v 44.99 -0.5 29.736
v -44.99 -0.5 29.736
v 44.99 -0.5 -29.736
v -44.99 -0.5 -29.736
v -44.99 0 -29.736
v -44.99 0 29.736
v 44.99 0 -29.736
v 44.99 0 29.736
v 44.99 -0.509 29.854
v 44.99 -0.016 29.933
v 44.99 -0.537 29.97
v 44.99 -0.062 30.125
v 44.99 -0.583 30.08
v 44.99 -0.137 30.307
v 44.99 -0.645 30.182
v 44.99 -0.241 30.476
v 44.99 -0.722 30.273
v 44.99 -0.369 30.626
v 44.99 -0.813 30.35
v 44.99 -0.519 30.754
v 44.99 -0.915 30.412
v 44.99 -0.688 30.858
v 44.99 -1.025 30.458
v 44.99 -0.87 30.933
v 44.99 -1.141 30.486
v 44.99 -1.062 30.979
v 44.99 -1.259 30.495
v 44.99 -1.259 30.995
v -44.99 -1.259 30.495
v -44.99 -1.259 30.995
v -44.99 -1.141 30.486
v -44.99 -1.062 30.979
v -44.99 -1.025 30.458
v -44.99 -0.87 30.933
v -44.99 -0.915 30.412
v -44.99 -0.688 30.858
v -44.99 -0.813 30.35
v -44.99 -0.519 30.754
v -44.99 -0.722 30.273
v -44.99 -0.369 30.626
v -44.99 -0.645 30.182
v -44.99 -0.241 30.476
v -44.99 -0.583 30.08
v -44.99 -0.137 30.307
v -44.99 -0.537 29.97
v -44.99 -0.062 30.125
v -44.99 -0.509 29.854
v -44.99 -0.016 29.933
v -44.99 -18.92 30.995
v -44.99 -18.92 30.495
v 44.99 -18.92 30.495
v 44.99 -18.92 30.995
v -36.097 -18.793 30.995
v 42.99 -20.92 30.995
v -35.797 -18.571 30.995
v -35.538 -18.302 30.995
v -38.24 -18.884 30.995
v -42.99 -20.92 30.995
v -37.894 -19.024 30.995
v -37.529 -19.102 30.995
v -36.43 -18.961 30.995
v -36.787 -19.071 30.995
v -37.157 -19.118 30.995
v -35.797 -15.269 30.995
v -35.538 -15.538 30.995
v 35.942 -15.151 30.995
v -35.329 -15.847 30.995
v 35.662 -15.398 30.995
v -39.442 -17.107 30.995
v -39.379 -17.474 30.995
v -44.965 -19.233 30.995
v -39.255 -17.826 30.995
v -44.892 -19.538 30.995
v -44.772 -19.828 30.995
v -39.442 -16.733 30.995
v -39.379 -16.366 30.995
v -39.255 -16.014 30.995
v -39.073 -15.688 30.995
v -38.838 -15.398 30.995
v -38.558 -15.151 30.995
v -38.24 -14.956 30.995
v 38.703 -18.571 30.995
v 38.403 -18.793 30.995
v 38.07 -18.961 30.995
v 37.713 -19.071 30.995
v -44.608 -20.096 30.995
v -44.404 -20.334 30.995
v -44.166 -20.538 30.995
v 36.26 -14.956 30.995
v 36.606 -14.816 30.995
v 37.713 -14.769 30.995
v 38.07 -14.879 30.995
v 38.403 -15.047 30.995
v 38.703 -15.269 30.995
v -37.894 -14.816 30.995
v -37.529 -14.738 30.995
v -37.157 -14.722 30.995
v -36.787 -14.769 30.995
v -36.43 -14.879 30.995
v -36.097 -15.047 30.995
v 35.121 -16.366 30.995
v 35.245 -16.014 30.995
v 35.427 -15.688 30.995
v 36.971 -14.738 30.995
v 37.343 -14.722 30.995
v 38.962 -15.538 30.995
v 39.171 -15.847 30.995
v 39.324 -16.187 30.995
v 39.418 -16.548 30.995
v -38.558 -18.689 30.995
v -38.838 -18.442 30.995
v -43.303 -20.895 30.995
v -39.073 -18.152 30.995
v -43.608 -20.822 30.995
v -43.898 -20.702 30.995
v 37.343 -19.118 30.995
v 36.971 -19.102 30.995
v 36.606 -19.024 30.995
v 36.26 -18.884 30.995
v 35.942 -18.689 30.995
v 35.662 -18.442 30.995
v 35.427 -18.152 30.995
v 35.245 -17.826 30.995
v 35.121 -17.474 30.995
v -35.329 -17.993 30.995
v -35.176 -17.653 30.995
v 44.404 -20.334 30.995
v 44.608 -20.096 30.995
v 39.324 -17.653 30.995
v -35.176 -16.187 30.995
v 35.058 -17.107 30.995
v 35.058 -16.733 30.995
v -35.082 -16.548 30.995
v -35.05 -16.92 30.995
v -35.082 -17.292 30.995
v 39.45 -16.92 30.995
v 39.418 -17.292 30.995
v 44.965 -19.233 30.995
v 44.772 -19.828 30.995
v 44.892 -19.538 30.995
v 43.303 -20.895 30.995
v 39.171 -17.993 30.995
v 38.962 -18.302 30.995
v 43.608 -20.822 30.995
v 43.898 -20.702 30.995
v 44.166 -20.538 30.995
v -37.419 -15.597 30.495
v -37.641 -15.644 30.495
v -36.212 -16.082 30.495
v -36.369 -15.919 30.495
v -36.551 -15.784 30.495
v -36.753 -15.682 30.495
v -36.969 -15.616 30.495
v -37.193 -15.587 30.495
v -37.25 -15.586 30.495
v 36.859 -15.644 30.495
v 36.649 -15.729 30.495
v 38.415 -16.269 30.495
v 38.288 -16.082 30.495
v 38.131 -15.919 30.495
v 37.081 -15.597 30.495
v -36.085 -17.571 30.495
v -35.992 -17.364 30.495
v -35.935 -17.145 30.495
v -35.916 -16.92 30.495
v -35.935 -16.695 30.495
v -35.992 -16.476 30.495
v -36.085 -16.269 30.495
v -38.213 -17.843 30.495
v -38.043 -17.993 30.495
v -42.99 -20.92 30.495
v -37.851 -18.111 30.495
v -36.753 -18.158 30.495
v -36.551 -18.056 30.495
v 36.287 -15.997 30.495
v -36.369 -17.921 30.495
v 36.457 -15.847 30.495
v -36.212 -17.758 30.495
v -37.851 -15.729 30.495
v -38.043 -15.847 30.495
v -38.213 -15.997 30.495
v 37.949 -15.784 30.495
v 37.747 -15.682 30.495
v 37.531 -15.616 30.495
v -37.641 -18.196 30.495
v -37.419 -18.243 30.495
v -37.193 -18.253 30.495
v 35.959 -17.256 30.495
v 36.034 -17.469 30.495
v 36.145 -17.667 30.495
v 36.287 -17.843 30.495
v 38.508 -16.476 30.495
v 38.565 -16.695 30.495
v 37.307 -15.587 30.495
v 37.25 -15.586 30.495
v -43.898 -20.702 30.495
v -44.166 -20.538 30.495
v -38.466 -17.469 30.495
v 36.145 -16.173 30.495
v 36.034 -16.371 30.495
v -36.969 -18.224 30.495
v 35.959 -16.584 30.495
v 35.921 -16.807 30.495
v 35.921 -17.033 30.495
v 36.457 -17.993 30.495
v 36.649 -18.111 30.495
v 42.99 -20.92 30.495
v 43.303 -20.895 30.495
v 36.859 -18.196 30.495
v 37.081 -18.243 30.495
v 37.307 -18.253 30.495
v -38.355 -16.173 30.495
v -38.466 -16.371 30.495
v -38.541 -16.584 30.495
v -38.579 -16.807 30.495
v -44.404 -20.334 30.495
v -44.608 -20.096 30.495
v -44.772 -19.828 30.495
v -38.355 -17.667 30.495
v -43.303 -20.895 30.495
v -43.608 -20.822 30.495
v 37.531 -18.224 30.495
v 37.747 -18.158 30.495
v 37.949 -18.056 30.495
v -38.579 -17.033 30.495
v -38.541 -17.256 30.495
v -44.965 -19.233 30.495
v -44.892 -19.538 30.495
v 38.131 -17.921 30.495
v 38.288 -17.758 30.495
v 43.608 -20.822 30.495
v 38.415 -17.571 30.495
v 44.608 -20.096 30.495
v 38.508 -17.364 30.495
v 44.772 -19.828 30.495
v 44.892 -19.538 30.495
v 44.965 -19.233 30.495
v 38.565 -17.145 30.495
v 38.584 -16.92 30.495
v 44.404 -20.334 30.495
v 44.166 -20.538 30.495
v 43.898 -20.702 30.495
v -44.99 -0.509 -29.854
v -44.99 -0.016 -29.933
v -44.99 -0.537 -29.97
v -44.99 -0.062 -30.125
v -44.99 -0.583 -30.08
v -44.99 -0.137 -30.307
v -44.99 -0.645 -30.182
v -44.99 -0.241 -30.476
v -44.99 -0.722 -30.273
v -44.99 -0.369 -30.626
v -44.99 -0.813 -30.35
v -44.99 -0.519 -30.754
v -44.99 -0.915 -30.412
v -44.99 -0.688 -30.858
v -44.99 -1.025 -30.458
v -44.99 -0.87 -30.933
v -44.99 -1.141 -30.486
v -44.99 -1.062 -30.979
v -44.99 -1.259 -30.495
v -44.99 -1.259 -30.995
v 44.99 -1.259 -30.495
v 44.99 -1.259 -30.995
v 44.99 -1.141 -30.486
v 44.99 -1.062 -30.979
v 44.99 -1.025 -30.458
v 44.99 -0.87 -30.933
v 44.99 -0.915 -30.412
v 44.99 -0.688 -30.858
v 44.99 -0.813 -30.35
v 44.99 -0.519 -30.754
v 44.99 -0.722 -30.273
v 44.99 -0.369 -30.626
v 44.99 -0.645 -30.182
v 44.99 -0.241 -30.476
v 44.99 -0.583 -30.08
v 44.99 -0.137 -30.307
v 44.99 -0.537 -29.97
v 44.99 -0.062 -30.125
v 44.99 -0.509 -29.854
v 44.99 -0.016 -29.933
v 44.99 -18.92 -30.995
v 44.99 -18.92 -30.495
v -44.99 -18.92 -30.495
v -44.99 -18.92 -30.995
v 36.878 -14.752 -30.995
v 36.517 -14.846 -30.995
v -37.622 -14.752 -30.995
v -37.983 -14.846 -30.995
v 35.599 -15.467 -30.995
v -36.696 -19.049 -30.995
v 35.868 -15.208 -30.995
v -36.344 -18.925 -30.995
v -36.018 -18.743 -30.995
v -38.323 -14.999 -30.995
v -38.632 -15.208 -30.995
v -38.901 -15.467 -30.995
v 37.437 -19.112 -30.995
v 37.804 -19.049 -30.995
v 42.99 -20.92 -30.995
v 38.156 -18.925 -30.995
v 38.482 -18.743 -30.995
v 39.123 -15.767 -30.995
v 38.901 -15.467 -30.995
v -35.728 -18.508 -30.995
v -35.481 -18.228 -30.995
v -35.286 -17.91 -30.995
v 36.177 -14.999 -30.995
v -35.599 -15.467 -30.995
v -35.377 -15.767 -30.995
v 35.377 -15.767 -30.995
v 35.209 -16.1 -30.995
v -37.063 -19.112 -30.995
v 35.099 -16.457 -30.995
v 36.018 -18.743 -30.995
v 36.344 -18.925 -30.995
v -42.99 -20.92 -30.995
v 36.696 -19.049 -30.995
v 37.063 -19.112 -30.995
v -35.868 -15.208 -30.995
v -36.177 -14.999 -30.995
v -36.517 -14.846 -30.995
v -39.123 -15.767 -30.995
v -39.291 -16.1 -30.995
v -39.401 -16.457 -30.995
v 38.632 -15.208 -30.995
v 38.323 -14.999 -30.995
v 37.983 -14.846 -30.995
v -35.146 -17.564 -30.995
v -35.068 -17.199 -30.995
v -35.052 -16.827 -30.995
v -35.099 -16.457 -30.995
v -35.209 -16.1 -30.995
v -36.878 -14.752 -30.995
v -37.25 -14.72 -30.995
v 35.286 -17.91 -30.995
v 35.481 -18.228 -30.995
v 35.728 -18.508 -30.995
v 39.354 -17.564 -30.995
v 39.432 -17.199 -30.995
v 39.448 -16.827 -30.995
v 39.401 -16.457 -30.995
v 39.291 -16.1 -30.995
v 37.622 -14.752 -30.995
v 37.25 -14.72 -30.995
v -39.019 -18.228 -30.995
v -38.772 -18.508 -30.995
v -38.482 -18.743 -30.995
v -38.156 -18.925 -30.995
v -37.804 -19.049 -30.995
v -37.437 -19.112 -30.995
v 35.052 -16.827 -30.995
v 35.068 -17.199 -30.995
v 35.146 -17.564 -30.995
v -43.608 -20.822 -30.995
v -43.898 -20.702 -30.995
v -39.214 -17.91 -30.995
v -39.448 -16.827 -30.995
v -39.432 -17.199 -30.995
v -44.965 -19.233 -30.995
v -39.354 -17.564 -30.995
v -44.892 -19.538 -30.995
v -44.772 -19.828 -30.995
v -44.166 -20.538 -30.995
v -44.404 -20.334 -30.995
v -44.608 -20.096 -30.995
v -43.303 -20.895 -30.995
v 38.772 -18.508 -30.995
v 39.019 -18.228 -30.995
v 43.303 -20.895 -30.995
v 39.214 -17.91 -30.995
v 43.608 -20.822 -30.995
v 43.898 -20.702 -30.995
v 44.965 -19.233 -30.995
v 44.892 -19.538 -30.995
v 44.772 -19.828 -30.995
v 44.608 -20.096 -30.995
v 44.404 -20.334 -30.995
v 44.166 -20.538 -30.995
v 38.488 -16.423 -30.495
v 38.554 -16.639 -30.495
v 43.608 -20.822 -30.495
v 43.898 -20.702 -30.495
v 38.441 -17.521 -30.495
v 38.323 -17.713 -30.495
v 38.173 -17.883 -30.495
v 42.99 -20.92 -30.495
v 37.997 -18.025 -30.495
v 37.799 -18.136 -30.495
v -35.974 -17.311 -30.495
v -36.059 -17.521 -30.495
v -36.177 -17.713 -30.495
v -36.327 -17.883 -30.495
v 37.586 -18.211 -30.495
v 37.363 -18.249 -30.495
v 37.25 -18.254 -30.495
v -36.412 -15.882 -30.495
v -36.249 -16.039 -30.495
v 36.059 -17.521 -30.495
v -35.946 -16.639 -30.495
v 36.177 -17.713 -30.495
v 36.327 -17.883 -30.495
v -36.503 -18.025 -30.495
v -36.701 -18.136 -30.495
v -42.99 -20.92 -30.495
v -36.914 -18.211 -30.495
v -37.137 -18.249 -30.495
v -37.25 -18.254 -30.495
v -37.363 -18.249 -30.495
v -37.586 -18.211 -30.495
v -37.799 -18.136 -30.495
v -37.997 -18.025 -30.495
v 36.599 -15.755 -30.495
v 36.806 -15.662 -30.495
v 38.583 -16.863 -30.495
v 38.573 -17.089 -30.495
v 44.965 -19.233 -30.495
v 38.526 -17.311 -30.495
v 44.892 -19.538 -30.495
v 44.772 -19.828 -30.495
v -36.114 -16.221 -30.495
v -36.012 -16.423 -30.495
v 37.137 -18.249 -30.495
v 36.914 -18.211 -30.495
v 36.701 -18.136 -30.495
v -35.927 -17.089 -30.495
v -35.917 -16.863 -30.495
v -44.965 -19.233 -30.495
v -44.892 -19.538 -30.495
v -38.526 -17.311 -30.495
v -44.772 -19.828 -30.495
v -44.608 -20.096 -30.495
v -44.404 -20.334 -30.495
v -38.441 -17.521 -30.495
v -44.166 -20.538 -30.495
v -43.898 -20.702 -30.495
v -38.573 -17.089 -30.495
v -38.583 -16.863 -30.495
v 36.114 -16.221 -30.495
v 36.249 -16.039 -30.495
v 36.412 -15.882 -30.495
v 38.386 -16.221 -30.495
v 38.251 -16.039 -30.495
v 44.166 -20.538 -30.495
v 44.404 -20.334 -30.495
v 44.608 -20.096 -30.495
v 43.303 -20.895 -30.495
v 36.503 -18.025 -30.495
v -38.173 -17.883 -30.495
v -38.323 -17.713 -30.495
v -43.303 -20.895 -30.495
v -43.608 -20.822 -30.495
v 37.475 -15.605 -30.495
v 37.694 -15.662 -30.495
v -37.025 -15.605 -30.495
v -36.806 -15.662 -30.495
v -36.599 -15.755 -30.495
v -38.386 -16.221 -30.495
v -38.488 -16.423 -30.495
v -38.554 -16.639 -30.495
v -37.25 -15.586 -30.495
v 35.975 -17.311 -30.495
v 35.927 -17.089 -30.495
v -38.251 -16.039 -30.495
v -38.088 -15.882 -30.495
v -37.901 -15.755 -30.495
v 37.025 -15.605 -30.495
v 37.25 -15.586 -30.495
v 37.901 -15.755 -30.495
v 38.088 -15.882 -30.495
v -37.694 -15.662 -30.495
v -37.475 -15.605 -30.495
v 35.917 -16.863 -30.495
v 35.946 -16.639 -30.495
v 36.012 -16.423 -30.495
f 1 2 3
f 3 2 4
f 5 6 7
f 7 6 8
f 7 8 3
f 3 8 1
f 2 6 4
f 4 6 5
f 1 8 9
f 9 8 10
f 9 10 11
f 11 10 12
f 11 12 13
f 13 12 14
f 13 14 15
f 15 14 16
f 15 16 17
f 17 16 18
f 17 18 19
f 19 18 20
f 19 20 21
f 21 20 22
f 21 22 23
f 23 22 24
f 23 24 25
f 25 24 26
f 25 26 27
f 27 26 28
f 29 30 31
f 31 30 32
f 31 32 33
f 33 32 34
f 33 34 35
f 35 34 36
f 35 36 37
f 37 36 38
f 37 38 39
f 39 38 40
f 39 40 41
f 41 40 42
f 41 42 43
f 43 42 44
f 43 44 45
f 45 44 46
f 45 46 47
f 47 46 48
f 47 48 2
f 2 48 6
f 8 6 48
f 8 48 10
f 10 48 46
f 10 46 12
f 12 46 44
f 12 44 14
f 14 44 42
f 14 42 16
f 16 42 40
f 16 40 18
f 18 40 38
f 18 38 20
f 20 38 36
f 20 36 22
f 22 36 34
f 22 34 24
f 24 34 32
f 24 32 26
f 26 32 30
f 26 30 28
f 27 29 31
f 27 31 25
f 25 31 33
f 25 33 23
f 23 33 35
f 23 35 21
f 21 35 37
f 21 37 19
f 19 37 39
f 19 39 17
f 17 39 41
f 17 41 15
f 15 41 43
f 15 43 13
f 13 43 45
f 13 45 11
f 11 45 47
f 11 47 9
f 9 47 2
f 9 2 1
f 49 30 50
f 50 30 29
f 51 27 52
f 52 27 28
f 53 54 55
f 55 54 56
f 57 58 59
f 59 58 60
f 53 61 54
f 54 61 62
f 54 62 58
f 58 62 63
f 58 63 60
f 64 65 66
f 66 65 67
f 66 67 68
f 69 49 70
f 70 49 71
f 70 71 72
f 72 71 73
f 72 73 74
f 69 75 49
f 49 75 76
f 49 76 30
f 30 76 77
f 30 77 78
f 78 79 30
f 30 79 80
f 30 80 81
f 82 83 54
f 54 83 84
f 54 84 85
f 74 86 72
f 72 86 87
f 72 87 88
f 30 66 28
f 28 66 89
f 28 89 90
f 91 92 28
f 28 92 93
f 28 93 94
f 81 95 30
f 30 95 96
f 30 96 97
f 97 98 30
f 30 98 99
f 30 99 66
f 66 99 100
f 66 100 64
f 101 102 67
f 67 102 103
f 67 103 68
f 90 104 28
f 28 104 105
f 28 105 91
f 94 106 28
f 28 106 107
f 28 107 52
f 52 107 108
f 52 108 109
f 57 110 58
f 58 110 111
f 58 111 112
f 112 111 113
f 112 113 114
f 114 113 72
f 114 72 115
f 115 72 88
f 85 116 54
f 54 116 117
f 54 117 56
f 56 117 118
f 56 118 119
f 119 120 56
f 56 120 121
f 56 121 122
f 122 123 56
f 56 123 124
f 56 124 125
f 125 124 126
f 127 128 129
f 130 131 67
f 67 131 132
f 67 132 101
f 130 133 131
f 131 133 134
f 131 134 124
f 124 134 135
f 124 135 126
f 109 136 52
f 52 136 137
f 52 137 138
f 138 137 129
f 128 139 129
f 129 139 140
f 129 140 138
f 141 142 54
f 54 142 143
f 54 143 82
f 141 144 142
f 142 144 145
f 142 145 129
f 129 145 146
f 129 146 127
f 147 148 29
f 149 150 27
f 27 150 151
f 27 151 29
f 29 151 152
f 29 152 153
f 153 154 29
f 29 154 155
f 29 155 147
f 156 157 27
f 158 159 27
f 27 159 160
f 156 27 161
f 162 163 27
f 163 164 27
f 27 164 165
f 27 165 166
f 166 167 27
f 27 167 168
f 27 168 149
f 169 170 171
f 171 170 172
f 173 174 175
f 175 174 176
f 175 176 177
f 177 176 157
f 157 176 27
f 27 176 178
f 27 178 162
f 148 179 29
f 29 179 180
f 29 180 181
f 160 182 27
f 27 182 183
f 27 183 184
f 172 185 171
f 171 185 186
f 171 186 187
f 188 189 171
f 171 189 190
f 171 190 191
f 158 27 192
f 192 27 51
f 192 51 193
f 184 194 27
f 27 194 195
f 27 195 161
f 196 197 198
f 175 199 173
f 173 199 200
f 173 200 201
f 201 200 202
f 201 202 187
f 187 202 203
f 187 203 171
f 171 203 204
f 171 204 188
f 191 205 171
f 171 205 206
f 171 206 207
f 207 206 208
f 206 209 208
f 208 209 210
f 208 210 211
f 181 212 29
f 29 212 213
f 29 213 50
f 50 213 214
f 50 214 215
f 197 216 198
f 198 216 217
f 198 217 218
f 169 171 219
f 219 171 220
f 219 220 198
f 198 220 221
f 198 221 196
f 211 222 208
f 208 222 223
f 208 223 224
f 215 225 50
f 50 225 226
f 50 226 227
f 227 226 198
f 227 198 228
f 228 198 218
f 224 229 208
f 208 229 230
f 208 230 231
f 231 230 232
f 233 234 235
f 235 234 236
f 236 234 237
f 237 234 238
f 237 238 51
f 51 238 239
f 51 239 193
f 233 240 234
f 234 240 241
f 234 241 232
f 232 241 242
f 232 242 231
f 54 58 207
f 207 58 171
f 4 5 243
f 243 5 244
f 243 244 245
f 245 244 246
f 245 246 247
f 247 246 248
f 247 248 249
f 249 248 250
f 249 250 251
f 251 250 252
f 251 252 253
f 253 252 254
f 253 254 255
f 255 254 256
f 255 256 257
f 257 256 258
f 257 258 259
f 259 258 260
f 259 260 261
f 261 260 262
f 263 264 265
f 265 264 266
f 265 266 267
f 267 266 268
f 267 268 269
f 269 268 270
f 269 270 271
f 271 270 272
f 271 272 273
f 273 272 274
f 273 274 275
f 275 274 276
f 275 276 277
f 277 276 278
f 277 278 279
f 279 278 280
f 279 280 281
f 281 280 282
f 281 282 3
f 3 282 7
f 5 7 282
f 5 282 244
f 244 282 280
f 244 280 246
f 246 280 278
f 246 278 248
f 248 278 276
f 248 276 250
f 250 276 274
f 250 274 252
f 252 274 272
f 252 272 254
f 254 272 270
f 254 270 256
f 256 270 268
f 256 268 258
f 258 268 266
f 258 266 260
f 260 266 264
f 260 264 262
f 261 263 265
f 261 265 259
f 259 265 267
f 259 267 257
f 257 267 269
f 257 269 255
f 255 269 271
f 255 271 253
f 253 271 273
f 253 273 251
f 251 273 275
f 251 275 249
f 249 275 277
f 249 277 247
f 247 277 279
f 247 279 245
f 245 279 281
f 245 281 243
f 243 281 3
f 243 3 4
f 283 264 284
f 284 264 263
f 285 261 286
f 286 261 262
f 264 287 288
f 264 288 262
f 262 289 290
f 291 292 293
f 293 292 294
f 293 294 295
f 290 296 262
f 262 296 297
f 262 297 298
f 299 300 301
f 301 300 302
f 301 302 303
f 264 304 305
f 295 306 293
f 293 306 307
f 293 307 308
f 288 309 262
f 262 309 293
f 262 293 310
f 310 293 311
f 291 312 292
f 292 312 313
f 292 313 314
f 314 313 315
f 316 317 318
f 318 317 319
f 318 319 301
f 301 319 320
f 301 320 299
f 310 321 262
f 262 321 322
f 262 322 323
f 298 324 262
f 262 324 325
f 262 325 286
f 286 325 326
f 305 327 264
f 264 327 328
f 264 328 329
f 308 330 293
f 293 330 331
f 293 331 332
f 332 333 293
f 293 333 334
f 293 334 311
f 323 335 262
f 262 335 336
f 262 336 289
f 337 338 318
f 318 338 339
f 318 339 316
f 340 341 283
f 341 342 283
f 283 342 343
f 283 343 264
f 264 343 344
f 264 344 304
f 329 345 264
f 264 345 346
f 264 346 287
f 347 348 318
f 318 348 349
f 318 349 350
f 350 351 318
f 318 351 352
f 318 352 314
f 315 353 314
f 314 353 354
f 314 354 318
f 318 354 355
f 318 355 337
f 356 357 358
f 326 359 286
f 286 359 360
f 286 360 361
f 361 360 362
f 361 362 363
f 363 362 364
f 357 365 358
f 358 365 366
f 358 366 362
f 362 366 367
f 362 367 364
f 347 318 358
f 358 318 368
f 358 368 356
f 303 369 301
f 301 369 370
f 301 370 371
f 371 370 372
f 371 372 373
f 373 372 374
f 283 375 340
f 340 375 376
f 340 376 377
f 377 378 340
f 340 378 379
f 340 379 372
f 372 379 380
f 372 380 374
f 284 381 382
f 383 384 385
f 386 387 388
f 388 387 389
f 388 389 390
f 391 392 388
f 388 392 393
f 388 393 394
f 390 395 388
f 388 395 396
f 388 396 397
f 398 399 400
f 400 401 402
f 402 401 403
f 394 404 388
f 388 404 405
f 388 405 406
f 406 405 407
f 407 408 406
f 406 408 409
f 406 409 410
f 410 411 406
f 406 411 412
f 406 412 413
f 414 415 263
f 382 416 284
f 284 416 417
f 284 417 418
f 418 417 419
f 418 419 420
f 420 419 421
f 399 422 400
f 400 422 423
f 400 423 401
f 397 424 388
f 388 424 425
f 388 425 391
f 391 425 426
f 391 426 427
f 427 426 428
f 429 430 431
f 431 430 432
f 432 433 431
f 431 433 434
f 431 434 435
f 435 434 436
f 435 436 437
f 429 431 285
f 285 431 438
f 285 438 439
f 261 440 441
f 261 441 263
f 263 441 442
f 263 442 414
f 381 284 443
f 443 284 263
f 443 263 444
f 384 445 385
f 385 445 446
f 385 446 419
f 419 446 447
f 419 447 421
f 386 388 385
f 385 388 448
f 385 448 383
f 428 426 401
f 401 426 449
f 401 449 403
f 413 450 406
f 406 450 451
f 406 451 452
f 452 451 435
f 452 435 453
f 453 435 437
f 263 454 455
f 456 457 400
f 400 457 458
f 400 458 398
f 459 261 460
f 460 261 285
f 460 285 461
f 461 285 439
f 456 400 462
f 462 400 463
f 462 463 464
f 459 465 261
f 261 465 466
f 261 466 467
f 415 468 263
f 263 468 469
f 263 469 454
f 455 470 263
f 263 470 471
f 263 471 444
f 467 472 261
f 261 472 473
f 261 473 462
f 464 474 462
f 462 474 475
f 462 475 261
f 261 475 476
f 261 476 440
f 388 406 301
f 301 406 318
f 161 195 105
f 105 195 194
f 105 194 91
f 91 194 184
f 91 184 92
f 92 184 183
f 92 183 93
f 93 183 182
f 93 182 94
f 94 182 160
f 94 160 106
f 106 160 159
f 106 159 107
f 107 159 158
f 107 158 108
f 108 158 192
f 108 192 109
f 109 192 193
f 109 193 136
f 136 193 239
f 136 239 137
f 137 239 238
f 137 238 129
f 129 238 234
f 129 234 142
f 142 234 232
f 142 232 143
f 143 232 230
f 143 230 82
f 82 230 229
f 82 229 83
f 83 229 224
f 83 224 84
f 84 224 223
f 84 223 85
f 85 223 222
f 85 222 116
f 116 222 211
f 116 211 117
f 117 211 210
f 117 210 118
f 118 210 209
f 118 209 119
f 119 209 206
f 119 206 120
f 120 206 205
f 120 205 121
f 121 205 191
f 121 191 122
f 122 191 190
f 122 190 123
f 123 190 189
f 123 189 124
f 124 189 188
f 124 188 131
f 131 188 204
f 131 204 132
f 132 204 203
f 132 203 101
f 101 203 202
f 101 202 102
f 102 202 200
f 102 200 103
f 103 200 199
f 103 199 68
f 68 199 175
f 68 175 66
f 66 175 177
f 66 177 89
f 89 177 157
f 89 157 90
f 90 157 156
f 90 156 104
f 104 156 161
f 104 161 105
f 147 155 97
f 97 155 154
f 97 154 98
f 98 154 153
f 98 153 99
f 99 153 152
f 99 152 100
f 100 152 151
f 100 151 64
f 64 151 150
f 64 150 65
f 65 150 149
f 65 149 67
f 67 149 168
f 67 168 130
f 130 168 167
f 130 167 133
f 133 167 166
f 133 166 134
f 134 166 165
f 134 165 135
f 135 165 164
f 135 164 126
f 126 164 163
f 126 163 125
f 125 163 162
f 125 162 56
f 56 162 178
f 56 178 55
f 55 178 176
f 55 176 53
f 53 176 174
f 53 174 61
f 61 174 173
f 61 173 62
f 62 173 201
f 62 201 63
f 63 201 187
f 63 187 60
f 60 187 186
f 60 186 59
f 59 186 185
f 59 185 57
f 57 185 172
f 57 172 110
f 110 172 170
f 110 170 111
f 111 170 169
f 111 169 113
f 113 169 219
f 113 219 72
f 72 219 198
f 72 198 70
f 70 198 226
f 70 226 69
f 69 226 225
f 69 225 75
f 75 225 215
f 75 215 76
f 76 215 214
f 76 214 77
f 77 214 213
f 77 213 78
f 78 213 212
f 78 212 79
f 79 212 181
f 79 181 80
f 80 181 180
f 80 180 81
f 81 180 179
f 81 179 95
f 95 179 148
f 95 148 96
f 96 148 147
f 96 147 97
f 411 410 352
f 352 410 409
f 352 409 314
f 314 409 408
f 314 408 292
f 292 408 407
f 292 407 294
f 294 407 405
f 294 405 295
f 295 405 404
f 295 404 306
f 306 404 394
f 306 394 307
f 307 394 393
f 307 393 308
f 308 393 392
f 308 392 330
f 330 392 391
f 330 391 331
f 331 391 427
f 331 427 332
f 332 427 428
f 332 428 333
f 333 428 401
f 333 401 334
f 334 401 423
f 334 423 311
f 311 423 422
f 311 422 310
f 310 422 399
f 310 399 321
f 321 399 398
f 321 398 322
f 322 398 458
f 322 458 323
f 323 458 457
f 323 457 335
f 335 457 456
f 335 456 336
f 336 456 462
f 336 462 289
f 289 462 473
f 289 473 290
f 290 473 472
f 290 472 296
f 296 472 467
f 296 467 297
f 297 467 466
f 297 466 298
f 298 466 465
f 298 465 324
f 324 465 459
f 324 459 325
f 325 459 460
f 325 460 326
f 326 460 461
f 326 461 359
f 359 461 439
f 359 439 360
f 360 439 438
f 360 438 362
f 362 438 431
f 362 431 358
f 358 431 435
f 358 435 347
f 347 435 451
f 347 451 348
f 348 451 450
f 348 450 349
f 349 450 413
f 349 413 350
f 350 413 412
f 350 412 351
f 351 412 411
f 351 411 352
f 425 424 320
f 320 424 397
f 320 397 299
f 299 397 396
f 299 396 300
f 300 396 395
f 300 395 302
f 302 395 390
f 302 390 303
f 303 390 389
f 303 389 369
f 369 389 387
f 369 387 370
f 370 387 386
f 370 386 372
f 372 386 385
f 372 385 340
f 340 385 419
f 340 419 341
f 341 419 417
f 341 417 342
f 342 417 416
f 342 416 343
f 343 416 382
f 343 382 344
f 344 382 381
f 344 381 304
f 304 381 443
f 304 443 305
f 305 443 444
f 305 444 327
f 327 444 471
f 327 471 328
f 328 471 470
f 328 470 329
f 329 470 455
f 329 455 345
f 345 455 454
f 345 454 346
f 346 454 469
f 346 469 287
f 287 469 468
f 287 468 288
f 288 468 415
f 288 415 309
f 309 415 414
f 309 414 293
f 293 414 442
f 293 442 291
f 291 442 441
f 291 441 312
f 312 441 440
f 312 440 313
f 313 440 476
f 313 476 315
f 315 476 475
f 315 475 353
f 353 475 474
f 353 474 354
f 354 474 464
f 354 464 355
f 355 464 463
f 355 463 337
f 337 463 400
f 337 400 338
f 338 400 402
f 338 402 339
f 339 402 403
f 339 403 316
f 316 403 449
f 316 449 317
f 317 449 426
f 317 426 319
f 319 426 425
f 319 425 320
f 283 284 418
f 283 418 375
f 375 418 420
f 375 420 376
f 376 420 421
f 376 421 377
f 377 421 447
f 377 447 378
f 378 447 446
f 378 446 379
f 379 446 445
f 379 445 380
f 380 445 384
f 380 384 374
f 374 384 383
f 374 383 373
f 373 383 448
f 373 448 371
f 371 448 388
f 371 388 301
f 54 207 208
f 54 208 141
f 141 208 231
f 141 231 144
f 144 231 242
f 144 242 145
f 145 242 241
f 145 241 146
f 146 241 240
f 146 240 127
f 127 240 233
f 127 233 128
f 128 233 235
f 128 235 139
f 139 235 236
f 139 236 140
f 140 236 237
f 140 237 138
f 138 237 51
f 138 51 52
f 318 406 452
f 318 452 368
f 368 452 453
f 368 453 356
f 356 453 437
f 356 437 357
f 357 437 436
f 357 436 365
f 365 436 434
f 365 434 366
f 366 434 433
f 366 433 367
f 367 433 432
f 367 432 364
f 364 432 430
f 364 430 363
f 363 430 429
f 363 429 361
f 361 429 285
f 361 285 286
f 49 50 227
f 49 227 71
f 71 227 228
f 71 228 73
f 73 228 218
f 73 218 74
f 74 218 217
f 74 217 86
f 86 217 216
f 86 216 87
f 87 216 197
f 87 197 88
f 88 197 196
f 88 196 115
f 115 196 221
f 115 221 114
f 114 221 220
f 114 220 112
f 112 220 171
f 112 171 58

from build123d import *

# Parameters (mm, degrees)
SKETCH1_W                                      = 89.98
SKETCH1_H                                      = 60.99
BASE_FLANGE1_DEPTH                             = 0.5
EDGE_FLANGE1_STRIP_W                           = 3.51892
EDGE_FLANGE1_STRIP_H                           = 0.5
EDGE_FLANGE1_STRIP_CUT_DEPTH                   = 89.98
EDGE_FLANGE1_STRIP_2_W                         = 3.51892
EDGE_FLANGE1_STRIP_2_H                         = 0.5
EDGE_FLANGE1_STRIP_CUT_2_DEPTH                 = 89.98
EDGE_FLANGE1_DEPTH                             = 89.98
EDGE_FLANGE1_BEND_DEPTH                        = 89.98
CSK_FOR_M2_FLAT_HEAD_MACHINE_SCREW1_AT_2_COUNT = 2
CSK_FOR_M2_FLAT_HEAD_MACHINE_SCREW1_AT_2_PITCH = 74.5
CSK_FOR_M2_FLAT_HEAD_MACHINE_SCREW2_AT_2_COUNT = 2
CSK_FOR_M2_FLAT_HEAD_MACHINE_SCREW2_AT_2_PITCH = 74.5
FILLET1_R                                      = 2


# Sheet-metal steps are written as plain solids
with BuildPart() as part:
    # Sketch1 → Base-Flange1 (new body)
    with BuildSketch(Plane(origin=(0, 0, 0), x_dir=(1, 0, 0), z_dir=(0, 1, 0))):
        Rectangle(SKETCH1_W, SKETCH1_H)
    extrude(amount=-BASE_FLANGE1_DEPTH)

    # Edge-Flange1 strip (across the edge) → Edge-Flange1 strip cut (cut)
    with BuildSketch(Plane(origin=(44.99, -0.5, 30.495), x_dir=(0, 0, -1), z_dir=(-1, 0, 0))):
        with Locations((-1, -0.25)):
            Rectangle(EDGE_FLANGE1_STRIP_W, EDGE_FLANGE1_STRIP_H)
    extrude(amount=EDGE_FLANGE1_STRIP_CUT_DEPTH, mode=Mode.SUBTRACT)

    # Edge-Flange1 strip 2 (across the edge) → Edge-Flange1 strip cut 2 (cut)
    with BuildSketch(Plane(origin=(-44.99, -0.5, -30.495), x_dir=(0, 0, 1), z_dir=(1, 0, 0))):
        with Locations((-1, -0.25)):
            Rectangle(EDGE_FLANGE1_STRIP_2_W, EDGE_FLANGE1_STRIP_2_H)
    extrude(amount=EDGE_FLANGE1_STRIP_CUT_2_DEPTH, mode=Mode.SUBTRACT)

    # Edge-Flange1 section (across the edge) → Edge-Flange1 (add)
    with BuildSketch(Plane(origin=(44.99, -0.5, 30.495), x_dir=(0, 0, -1), z_dir=(-1, 0, 0))):
        with BuildLine():
            Line((-0.5, 0.75946), (-0.5, 20.42))
            Line((-0.5, 20.42), (0, 20.42))
            Line((0, 20.42), (0, 0.75946))
            ThreePointArc((0, 0.75946), (0.222440684, 0.222440684), (0.75946, 0))
            Line((0.75946, 0), (0.75946, -0.5))
            ThreePointArc((0.75946, -0.5), (-0.131112707, -0.131112707), (-0.5, 0.75946))
        make_face()
    extrude(amount=EDGE_FLANGE1_DEPTH)

    # Edge-Flange1 section 2 (across the edge) → Edge-Flange1 bend (add)
    with BuildSketch(Plane(origin=(-44.99, -0.5, -30.495), x_dir=(0, 0, 1), z_dir=(1, 0, 0))):
        with BuildLine():
            Line((-0.5, 0.75946), (-0.5, 20.42))
            Line((-0.5, 20.42), (0, 20.42))
            Line((0, 20.42), (0, 0.75946))
            ThreePointArc((0, 0.75946), (0.222440684, 0.222440684), (0.75946, 0))
            Line((0.75946, 0), (0.75946, -0.5))
            ThreePointArc((0.75946, -0.5), (-0.131112707, -0.131112707), (-0.5, 0.75946))
        make_face()
    extrude(amount=EDGE_FLANGE1_BEND_DEPTH)

    # Sketch14 → CSK for M2 Flat Head Machine Screw1 (revolve, cut)
    with BuildSketch(Plane(origin=(-37.25, -16.92, 30.995), x_dir=(0, -1, 0), z_dir=(1, 0, 0))):
        Polygon((0, 0), (0, 0.5), (1.2, 0.5), (1.2, 0.577350269), (2.2, 0), align=None)
    csk_for_m2_flat_head_machine_screw1 = revolve(axis=Axis((-37.25, -16.92, 37.345), (0, 0, -1)), mode=Mode.SUBTRACT)

    # CSK for M2 Flat Head Machine Screw1 at 2: CSK for M2 Flat Head Machine Screw1 ×2
    with Locations(*[(i * CSK_FOR_M2_FLAT_HEAD_MACHINE_SCREW1_AT_2_PITCH, 0, 0) for i in range(1, CSK_FOR_M2_FLAT_HEAD_MACHINE_SCREW1_AT_2_COUNT)]):
        add(csk_for_m2_flat_head_machine_screw1, mode=Mode.SUBTRACT)

    # Sketch20 → CSK for M2 Flat Head Machine Screw2 (revolve, cut)
    with BuildSketch(Plane(origin=(37.25, -16.92, -30.995), x_dir=(0, 1, 0), z_dir=(1, 0, 0))):
        Polygon((0, 0), (0, 0.5), (1.2, 0.5), (1.2, 0.577350269), (2.2, 0), align=None)
    csk_for_m2_flat_head_machine_screw2 = revolve(axis=Axis((37.25, -16.92, -37.345), (0, 0, 1)), mode=Mode.SUBTRACT)

    # CSK for M2 Flat Head Machine Screw2 at 2: CSK for M2 Flat Head Machine Screw2 ×2
    with Locations(*[(-i * CSK_FOR_M2_FLAT_HEAD_MACHINE_SCREW2_AT_2_PITCH, 0, 0) for i in range(1, CSK_FOR_M2_FLAT_HEAD_MACHINE_SCREW2_AT_2_COUNT)]):
        add(csk_for_m2_flat_head_machine_screw2, mode=Mode.SUBTRACT)

    # Fillet1
    fillet1_edges = [part.edges().sort_by_distance(p)[0] for p in [
        (44.99, -20.92, 30.745),
        (-44.99, -20.92, 30.745),
        (-44.99, -20.92, -30.745),
        (44.99, -20.92, -30.745),
    ]]
    fillet(fillet1_edges, radius=FILLET1_R)


solid = part.part
